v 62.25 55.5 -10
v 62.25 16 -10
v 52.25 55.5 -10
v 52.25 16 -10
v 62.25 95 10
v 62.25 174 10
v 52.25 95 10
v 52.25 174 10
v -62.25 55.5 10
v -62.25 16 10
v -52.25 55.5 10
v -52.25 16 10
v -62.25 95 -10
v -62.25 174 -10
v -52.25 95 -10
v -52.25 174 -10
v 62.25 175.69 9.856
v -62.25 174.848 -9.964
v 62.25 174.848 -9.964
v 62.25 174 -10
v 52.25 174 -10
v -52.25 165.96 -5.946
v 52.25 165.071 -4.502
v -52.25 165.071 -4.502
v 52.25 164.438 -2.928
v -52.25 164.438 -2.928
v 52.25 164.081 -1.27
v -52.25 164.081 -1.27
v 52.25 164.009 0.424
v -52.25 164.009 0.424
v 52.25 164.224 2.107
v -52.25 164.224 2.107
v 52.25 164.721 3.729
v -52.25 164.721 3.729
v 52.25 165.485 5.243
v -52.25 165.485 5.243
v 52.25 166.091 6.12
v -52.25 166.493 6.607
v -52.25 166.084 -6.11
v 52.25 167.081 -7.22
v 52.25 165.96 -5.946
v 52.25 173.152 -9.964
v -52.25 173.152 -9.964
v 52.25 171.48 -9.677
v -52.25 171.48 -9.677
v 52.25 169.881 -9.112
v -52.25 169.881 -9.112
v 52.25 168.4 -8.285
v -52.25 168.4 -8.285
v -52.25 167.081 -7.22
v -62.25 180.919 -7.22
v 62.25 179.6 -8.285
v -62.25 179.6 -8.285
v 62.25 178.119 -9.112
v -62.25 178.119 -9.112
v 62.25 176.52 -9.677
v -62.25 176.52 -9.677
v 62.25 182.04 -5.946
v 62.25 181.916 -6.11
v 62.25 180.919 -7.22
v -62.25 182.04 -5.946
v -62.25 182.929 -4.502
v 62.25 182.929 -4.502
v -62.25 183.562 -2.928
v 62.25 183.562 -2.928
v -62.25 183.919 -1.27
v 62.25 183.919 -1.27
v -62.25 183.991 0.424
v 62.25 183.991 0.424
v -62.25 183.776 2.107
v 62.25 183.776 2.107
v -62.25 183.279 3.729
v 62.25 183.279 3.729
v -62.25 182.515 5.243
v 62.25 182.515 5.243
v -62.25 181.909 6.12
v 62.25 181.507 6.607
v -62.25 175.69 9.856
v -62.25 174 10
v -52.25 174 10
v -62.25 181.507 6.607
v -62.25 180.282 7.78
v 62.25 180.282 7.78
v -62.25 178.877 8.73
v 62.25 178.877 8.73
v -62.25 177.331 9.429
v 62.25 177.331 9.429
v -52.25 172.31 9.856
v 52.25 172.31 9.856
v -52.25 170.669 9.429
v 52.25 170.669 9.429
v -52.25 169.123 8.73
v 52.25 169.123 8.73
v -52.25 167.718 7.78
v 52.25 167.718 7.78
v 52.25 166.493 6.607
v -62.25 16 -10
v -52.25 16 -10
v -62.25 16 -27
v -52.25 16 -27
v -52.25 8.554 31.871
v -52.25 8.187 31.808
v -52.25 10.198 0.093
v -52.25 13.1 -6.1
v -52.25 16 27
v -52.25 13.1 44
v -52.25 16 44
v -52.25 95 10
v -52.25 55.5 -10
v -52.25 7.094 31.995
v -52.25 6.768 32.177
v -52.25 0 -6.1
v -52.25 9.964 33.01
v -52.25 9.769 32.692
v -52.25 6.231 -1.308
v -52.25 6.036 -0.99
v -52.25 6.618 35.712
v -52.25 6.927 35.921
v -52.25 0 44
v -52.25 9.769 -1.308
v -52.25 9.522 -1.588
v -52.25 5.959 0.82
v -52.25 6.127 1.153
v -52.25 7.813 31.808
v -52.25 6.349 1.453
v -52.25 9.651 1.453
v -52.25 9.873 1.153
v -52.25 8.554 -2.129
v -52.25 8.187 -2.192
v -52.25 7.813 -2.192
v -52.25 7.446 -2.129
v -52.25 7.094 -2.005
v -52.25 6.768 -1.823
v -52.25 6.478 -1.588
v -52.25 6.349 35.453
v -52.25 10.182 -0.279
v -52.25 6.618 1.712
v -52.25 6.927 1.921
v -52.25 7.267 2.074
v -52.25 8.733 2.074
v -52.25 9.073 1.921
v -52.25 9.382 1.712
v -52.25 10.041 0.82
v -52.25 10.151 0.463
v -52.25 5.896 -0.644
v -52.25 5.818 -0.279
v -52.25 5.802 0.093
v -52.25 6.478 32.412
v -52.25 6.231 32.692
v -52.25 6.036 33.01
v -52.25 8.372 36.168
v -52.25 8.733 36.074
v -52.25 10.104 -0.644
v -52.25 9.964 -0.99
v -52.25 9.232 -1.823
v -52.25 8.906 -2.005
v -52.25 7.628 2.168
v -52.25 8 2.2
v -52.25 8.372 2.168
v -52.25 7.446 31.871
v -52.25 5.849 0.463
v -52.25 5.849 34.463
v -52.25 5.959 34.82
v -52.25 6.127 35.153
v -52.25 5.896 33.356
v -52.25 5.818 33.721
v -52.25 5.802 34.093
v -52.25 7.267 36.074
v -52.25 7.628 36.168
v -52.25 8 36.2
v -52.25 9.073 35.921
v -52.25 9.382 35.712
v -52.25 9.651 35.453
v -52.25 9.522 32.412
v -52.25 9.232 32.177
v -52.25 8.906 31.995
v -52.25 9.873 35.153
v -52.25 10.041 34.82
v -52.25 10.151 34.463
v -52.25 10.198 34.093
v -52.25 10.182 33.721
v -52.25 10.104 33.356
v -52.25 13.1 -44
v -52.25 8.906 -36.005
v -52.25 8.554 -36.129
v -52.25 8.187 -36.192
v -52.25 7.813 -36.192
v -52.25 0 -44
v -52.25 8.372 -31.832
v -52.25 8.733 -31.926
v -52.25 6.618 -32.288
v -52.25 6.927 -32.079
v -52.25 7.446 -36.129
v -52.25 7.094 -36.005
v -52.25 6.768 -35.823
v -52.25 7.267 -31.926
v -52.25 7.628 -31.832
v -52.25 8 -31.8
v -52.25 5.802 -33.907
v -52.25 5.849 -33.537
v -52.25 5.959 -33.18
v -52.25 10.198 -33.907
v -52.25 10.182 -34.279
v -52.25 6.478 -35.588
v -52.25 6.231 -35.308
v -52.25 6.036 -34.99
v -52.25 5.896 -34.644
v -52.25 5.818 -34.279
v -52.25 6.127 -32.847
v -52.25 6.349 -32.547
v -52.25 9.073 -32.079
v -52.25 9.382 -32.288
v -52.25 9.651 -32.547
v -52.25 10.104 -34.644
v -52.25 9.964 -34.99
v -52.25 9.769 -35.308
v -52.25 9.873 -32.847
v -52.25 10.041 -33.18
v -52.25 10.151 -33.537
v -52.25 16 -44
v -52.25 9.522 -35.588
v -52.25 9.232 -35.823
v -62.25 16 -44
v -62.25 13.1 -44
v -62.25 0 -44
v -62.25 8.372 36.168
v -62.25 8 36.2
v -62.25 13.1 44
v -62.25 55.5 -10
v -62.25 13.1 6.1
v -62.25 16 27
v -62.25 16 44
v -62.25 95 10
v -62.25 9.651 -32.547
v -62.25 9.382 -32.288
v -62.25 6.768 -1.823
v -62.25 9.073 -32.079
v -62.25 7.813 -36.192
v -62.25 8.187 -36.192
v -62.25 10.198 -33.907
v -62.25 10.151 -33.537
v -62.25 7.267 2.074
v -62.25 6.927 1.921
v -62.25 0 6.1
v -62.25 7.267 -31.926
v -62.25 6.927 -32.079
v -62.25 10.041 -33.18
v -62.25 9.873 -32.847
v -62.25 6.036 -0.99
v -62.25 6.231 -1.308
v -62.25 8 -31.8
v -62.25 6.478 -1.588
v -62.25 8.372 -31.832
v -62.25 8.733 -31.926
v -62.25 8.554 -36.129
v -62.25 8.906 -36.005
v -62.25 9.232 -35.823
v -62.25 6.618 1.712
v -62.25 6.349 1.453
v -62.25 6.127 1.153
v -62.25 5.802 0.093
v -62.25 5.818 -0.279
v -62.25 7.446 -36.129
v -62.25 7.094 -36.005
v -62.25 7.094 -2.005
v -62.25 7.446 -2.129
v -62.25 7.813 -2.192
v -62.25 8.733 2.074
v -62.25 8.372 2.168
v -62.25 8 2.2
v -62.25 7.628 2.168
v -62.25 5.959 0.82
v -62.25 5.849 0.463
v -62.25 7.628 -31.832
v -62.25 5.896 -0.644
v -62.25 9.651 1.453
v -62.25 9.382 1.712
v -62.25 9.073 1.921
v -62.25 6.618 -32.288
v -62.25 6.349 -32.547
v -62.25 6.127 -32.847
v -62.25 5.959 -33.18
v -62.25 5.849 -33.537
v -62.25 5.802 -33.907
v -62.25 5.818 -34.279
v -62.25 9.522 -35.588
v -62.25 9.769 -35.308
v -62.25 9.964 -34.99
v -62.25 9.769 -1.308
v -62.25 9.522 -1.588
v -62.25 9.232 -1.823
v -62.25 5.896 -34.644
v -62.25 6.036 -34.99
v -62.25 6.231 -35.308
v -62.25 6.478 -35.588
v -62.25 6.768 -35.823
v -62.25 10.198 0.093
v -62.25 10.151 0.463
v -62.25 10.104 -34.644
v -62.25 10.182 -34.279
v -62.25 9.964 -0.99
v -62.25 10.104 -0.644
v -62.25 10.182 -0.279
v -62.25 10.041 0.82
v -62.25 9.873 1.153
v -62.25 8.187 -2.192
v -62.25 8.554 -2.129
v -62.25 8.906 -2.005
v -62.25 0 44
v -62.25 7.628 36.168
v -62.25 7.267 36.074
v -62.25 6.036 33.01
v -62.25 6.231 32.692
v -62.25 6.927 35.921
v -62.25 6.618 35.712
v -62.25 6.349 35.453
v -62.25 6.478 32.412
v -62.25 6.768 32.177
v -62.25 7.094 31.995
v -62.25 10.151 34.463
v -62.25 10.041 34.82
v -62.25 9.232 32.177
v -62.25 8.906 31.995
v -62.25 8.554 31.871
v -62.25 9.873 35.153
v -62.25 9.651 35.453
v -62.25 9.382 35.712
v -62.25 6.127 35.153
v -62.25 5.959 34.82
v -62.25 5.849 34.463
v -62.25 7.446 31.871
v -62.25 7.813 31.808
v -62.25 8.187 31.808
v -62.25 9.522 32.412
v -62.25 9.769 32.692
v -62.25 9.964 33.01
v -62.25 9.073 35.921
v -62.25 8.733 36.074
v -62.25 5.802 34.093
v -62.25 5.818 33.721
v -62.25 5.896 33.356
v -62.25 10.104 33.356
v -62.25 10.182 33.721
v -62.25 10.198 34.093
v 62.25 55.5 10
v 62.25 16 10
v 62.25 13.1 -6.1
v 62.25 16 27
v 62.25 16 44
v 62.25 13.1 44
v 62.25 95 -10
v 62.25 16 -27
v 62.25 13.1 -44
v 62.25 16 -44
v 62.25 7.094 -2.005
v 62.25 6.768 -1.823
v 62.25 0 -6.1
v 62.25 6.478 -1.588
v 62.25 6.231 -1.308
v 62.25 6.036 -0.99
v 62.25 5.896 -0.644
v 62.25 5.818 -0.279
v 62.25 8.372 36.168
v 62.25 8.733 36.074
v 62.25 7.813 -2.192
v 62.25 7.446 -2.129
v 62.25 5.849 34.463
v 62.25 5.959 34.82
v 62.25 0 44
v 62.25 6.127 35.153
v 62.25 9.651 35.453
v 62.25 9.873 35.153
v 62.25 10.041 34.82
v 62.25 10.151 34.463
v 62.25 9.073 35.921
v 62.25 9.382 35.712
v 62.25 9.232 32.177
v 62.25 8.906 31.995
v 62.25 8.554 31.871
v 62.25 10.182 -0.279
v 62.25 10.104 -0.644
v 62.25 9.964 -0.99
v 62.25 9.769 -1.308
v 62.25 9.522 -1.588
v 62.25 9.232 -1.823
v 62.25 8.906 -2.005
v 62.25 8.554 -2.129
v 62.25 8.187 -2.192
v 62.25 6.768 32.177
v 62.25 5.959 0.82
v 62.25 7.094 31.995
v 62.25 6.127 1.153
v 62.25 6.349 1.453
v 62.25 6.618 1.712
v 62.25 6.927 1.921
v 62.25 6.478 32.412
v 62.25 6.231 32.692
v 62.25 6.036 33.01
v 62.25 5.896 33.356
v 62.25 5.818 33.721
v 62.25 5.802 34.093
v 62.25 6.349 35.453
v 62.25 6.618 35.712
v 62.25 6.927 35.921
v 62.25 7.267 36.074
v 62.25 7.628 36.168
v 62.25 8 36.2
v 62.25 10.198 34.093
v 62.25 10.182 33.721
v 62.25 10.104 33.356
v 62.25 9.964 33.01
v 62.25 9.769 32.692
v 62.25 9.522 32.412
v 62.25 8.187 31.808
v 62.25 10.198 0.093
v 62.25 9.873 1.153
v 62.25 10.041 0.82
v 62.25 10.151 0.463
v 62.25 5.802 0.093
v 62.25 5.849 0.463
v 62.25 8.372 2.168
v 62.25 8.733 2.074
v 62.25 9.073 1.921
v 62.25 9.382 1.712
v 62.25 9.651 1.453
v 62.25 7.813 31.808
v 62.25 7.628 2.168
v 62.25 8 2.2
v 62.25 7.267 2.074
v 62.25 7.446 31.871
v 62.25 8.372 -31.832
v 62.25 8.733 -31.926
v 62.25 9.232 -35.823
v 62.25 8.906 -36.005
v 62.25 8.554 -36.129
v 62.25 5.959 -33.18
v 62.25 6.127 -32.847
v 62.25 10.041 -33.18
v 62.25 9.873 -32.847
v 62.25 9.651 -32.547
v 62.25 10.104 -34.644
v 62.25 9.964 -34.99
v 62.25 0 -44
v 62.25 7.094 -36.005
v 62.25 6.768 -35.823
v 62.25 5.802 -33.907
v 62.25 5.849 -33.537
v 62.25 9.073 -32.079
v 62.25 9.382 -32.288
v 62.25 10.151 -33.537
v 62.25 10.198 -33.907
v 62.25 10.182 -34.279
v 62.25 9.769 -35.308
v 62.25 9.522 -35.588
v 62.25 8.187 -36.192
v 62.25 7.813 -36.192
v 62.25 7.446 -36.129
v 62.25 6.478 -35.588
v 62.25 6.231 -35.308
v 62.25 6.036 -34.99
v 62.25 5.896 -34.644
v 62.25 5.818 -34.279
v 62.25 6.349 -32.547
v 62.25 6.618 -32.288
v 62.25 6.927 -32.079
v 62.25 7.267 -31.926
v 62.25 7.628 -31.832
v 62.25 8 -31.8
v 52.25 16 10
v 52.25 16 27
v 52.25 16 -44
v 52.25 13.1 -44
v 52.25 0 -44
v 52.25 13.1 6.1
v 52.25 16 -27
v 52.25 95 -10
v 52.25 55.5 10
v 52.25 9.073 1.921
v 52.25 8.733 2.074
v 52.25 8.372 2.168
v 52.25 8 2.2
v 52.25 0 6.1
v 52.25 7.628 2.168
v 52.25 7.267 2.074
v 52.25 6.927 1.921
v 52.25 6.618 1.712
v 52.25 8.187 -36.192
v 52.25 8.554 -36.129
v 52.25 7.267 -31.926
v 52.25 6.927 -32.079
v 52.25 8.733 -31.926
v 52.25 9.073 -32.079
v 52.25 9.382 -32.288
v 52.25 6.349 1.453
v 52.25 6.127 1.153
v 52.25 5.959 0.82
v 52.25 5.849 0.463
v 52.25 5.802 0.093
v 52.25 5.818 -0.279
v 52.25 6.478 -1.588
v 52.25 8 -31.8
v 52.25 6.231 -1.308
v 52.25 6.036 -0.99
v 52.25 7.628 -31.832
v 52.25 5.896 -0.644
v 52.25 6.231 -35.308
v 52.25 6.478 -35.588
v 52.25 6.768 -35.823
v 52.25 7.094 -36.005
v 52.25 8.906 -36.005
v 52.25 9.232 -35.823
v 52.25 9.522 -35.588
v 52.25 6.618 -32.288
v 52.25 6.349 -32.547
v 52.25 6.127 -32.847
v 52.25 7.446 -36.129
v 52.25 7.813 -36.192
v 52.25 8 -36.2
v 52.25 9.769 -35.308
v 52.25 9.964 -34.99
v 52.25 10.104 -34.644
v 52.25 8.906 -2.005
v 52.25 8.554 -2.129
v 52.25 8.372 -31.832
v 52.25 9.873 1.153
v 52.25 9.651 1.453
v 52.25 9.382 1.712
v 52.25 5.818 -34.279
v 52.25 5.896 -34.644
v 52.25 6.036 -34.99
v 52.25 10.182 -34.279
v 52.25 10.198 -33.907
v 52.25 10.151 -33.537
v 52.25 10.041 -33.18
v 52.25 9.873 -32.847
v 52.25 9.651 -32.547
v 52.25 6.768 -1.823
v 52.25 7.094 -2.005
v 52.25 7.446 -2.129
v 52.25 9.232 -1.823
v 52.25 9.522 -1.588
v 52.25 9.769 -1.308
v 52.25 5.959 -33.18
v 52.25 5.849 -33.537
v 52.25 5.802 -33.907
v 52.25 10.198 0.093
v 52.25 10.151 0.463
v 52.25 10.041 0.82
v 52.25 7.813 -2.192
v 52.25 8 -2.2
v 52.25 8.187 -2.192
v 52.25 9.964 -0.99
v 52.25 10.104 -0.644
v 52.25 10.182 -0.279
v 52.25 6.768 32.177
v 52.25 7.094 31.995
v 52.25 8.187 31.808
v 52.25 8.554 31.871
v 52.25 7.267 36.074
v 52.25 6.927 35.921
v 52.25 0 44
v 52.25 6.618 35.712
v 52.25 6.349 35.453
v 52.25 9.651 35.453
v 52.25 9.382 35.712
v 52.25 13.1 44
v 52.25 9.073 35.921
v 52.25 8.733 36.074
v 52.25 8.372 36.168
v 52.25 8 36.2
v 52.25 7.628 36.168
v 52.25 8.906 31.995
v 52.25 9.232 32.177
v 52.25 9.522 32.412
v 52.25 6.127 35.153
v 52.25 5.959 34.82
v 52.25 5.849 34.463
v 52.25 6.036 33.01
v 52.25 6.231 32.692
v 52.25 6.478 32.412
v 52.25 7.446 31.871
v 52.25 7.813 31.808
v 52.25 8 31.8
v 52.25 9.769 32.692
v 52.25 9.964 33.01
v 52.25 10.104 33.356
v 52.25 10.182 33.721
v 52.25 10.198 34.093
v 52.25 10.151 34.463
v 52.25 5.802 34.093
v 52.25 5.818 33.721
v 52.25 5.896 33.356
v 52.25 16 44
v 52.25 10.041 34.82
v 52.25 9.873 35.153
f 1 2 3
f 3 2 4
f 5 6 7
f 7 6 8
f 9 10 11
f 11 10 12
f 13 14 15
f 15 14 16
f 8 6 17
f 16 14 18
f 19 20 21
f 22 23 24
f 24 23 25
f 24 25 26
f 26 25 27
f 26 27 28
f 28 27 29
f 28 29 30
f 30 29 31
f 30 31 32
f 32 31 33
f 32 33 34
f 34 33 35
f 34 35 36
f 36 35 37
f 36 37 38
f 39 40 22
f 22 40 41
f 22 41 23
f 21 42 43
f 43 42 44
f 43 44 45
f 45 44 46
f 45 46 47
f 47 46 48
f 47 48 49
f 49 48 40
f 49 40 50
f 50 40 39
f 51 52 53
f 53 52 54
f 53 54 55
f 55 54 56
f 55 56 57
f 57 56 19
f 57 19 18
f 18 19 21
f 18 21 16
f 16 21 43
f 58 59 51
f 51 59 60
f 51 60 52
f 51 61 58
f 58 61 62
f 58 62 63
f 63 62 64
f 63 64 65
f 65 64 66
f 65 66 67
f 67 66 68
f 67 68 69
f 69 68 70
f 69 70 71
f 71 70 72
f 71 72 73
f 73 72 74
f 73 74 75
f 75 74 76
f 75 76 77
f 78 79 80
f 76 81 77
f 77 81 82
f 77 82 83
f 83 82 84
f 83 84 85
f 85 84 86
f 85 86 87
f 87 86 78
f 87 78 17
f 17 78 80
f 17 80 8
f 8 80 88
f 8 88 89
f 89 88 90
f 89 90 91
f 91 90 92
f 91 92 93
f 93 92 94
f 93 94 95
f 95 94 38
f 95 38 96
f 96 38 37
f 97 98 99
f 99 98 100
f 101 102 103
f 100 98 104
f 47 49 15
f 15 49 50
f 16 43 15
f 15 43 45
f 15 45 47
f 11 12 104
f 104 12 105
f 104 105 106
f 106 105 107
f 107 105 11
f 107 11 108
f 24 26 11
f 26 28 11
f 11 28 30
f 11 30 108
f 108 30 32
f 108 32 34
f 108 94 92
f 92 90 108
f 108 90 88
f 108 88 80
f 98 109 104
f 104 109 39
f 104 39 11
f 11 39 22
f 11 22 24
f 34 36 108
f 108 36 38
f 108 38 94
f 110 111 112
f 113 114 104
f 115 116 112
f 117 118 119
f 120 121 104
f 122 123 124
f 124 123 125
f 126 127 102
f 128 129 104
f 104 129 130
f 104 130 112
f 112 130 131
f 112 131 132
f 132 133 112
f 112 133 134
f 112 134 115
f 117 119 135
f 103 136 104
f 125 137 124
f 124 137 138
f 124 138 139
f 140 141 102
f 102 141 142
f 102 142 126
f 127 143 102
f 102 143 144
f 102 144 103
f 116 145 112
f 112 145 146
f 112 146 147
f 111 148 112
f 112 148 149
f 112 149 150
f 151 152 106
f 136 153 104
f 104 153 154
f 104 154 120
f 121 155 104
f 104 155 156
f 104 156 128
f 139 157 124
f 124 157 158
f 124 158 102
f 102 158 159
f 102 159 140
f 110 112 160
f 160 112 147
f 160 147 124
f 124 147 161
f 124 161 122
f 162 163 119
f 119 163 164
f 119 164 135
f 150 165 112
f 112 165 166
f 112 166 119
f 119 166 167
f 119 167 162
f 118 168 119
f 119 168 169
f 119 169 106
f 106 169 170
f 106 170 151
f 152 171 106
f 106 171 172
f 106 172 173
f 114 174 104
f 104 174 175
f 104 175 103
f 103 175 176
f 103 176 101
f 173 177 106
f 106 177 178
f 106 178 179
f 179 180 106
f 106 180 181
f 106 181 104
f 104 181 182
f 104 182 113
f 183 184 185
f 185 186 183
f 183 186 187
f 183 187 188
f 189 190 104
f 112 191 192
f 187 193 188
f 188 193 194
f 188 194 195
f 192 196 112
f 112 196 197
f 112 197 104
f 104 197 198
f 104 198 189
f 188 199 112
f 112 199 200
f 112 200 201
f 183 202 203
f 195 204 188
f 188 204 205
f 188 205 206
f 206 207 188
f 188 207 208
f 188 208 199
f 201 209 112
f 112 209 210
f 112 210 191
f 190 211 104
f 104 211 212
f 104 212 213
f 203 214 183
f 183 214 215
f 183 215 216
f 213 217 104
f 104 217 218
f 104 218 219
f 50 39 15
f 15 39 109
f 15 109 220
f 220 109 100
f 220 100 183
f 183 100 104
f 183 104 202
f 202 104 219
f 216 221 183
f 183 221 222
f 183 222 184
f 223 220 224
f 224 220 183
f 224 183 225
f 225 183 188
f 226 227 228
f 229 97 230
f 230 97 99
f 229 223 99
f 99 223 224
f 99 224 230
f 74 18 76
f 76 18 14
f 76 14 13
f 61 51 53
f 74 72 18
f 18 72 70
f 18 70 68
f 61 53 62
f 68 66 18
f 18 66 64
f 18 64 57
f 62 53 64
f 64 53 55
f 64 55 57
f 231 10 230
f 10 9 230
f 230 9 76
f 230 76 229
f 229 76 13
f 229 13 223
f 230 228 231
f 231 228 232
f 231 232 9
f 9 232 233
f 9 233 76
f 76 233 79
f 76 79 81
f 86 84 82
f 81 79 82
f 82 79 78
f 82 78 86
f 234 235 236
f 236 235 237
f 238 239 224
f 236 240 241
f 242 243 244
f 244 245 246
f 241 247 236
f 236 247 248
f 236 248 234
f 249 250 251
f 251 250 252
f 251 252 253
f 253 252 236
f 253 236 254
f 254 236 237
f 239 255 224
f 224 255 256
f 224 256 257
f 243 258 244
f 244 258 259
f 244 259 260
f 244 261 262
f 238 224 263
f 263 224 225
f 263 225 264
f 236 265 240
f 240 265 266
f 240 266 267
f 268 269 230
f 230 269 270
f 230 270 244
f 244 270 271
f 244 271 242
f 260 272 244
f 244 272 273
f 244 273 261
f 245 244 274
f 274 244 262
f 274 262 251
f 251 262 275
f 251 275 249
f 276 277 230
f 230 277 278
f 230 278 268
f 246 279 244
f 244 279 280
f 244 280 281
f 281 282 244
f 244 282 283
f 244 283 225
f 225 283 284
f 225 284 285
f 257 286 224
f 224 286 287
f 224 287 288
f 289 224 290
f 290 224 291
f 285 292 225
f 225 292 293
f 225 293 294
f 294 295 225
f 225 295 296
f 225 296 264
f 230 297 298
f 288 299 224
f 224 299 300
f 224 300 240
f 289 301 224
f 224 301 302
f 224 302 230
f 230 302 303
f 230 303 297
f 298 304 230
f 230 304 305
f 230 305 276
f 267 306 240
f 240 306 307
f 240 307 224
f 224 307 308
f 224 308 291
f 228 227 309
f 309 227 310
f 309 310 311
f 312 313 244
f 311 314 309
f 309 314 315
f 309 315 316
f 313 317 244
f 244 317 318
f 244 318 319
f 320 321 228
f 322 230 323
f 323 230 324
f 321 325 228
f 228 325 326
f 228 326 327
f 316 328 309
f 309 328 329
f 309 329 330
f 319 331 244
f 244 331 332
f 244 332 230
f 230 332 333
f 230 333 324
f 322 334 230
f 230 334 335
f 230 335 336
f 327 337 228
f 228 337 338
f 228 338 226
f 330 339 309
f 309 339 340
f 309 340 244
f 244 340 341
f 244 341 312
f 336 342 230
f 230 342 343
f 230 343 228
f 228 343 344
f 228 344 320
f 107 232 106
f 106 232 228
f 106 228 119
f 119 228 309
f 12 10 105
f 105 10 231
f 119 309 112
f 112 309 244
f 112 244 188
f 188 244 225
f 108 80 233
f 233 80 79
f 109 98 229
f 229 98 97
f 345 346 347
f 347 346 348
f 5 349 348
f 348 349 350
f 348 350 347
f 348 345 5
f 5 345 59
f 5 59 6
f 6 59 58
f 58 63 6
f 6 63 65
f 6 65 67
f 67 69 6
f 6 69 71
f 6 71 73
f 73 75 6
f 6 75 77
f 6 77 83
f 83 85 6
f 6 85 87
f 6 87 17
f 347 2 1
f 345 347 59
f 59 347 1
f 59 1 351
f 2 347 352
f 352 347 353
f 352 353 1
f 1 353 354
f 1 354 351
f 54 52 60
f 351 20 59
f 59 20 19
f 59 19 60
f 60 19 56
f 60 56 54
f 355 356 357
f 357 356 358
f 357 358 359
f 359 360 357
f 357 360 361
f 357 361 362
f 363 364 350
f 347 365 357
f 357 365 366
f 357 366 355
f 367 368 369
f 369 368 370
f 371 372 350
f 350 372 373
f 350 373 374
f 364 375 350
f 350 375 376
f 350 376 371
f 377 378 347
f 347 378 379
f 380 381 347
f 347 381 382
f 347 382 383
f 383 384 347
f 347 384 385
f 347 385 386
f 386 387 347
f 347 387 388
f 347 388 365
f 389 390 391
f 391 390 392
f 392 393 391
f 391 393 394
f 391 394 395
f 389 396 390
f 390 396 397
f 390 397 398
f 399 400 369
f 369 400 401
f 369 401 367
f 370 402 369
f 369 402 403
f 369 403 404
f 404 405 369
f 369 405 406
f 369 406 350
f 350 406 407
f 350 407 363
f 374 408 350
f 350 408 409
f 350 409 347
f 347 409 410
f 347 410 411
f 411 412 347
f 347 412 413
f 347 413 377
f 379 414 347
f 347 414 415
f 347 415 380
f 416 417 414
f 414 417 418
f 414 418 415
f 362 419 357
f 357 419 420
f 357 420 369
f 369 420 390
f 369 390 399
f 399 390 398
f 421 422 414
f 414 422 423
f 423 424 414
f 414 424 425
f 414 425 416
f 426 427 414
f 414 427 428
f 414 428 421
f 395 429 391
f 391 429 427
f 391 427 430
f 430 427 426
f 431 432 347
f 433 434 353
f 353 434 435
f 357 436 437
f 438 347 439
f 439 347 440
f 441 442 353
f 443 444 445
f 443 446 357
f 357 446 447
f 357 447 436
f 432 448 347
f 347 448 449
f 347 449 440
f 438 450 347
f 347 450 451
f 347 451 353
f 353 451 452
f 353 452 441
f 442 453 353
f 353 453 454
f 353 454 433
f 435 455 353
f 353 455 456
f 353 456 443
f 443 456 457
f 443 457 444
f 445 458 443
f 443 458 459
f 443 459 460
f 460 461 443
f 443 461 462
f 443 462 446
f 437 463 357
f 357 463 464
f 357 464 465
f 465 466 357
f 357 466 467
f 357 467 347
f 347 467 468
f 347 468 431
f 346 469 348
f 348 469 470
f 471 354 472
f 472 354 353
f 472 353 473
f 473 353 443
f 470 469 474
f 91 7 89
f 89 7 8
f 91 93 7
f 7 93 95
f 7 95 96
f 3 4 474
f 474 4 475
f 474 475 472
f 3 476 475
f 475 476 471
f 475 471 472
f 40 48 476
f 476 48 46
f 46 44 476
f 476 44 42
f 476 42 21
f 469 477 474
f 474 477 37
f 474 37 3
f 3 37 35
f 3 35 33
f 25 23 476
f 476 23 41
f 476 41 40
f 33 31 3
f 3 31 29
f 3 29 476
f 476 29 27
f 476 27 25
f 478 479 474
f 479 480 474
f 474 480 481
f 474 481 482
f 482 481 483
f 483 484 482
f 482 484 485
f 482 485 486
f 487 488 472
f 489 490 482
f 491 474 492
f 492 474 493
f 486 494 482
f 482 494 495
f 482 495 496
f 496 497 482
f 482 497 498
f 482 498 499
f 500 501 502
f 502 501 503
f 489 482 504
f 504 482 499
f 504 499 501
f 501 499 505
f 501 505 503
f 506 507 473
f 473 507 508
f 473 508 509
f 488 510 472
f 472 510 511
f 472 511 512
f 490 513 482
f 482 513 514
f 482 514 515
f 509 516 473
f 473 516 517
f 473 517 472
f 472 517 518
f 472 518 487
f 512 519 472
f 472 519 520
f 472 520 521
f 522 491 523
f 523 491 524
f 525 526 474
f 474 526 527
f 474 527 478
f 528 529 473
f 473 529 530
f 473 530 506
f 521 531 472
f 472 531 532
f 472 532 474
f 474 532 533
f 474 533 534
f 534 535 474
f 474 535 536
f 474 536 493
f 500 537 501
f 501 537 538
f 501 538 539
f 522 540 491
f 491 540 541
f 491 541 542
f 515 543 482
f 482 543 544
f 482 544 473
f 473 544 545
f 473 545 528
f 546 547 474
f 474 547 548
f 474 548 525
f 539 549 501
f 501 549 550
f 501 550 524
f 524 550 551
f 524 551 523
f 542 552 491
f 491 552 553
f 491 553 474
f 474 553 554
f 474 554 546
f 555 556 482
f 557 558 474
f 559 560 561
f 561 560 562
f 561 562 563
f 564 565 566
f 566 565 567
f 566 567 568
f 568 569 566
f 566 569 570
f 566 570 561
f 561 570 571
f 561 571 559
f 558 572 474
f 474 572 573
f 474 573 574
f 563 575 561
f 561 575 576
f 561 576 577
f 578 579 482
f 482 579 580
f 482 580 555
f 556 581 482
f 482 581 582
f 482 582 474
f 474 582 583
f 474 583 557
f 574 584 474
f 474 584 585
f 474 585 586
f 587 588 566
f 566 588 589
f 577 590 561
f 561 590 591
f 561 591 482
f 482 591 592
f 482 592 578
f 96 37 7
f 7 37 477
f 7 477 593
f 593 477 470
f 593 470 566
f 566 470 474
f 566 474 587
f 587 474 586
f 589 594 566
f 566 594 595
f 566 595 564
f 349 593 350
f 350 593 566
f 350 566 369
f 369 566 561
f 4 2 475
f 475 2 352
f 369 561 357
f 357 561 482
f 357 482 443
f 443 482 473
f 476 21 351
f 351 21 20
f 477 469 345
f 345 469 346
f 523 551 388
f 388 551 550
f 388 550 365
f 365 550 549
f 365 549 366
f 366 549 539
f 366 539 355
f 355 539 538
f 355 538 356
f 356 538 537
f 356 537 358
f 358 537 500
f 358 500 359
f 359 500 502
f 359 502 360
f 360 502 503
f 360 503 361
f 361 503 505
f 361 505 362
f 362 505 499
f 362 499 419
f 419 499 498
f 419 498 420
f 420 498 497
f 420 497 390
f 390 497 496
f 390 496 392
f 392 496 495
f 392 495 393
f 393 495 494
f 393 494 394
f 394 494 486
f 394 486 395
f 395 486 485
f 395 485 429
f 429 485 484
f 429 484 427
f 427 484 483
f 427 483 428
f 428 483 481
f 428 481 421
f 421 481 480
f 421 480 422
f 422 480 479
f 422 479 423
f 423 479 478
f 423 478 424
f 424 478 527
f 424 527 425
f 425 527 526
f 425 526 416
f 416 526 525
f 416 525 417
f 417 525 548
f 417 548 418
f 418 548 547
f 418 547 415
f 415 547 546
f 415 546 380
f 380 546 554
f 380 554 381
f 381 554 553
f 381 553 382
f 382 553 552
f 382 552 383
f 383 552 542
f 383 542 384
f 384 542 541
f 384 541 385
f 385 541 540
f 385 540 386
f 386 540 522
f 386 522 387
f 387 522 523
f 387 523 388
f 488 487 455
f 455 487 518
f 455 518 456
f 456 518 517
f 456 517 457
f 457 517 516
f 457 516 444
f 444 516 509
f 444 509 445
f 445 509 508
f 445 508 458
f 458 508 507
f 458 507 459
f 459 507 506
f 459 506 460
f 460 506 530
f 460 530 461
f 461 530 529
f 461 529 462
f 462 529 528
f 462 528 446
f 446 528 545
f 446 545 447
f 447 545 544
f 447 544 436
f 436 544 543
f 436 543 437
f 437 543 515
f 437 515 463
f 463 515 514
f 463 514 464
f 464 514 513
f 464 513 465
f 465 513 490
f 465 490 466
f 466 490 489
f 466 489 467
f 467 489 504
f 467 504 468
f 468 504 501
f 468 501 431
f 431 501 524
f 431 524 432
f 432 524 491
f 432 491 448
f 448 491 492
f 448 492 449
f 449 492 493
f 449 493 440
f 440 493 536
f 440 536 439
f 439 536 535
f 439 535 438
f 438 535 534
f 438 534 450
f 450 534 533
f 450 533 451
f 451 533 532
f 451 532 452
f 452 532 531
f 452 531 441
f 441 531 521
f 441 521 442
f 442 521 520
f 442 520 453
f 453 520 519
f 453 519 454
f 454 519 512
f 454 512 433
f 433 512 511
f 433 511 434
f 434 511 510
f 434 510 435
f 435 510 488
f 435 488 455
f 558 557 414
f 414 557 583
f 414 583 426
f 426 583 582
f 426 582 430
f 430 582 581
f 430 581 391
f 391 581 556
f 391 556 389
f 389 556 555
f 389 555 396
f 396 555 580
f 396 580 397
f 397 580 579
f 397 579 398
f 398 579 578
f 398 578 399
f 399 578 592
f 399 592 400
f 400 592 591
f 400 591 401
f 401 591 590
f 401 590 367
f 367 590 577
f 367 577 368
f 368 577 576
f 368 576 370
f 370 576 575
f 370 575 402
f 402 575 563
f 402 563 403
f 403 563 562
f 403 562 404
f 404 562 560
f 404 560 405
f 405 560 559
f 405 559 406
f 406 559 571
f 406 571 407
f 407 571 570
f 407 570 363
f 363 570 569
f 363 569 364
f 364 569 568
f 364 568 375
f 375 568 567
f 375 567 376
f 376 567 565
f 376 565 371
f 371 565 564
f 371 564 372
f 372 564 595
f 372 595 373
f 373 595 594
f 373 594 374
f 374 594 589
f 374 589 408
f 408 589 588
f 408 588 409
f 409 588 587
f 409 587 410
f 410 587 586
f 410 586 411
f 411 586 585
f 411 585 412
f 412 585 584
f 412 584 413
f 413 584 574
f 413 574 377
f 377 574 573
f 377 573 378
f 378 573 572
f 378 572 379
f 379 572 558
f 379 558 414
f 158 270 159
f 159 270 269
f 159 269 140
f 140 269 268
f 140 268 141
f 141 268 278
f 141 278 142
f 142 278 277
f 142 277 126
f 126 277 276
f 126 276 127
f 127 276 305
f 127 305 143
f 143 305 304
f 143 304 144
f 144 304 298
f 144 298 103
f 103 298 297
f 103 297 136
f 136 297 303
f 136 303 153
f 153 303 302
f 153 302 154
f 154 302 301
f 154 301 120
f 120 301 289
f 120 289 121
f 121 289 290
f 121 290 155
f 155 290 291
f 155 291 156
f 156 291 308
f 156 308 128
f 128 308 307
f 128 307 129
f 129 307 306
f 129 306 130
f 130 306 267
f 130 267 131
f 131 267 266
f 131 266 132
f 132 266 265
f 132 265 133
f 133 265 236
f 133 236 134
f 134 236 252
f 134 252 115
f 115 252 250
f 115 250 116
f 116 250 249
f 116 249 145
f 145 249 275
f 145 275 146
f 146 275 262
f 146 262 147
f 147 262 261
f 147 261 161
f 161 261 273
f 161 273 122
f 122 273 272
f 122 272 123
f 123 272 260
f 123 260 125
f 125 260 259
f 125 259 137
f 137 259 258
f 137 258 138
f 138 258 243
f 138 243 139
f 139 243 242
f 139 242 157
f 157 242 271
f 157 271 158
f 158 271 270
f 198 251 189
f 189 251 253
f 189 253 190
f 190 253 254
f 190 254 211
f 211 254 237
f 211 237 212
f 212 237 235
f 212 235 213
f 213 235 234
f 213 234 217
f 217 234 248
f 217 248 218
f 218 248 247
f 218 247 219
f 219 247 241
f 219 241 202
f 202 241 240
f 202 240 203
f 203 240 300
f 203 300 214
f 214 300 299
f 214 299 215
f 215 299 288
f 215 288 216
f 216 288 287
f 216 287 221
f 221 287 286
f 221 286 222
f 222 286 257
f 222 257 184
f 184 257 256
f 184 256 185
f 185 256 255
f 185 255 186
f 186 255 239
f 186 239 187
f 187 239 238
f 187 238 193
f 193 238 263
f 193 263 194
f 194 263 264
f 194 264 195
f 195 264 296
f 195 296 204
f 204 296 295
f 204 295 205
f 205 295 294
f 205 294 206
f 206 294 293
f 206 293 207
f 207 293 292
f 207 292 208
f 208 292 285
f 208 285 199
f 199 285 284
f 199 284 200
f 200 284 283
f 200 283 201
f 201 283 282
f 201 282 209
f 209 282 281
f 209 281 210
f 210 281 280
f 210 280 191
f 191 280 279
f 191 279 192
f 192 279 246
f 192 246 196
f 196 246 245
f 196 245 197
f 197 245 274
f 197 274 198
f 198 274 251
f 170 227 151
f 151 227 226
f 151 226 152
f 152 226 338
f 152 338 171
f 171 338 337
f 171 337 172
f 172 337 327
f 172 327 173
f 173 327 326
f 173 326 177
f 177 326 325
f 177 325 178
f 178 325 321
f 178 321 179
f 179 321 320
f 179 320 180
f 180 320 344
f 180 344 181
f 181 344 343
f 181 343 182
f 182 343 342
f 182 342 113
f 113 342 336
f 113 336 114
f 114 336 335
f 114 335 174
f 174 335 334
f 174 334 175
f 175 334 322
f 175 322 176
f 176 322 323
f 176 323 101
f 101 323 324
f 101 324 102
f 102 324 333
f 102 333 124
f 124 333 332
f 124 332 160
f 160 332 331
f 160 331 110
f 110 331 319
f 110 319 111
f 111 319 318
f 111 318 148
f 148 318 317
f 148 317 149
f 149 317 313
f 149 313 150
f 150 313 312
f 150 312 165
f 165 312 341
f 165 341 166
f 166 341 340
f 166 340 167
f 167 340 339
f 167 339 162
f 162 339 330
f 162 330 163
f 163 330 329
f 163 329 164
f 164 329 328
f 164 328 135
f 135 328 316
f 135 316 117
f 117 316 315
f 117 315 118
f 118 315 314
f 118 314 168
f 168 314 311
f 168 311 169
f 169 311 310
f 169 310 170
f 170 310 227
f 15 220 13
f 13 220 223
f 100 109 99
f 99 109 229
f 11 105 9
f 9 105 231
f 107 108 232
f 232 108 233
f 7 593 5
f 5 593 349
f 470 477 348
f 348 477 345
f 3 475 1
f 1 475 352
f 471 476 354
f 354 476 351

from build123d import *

# Parameters (mm, degrees)
SKETCH_2_W          = 10
SKETCH_2_H          = 88
EXTRUDE_1_DEPTH     = 16
EXTRUDE_1_2_DEPTH   = 16
SKETCH_3_W          = 10
SKETCH_3_H          = 20
EXTRUDE_2_DEPTH     = 158
SKETCH_4_R          = 10
EXTRUDE_3_DEPTH     = 124.5
SKETCH_5_R          = 2.2
CUT_EXTRUDE_1_DEPTH = 126
EXTRUDE_4_DEPTH     = 10
EXTRUDE_5_DEPTH     = 10


with BuildPart() as part:
    # 草图2 → 凸台-拉伸1 (new body)
    with BuildSketch(Plane(origin=(0, 0, 0), x_dir=(1, 0, 0), z_dir=(0, 1, 0))):
        with Locations((-57.25, 0)):
            Rectangle(SKETCH_2_W, SKETCH_2_H)
    extrude(amount=EXTRUDE_1_DEPTH)



with BuildPart() as body_2:
    # 草图2 → Extrude 1 2 (new body)
    with BuildSketch(Plane(origin=(0, 0, 0), x_dir=(1, 0, 0), z_dir=(0, 1, 0))):
        with Locations((57.25, 0)):
            Rectangle(SKETCH_2_W, SKETCH_2_H)
    extrude(amount=EXTRUDE_1_2_DEPTH)


with BuildPart() as part_1:
    add(part.part)

    add(body_2.part)  # 凸台-拉伸2 merges body 2
    # 草图3 → 凸台-拉伸2 (add)
    with BuildSketch(Plane(origin=(0, 16, 0), x_dir=(1, 0, 0), z_dir=(0, 1, 0))):
        with Locations((-57.25, 0)):
            Rectangle(SKETCH_3_W, SKETCH_3_H)
        with Locations((57.25, 0)):
            Rectangle(SKETCH_3_W, SKETCH_3_H)
    extrude(amount=EXTRUDE_2_DEPTH)

    # 草图4 → 凸台-拉伸3 (add)
    with BuildSketch(Plane.ZY.offset(62.25)):
        with Locations((0, 174)):
            Circle(SKETCH_4_R)
    extrude(amount=-EXTRUDE_3_DEPTH)

    # 草图5 → 切除-拉伸1 (cut)
    with BuildSketch(Plane.ZY.offset(62.25)):
        with Locations((0, 8)):
            Circle(SKETCH_5_R)
        with Locations((-34, 8)):
            Circle(SKETCH_5_R)
        with Locations((34, 8)):
            Circle(SKETCH_5_R)
    extrude(amount=-CUT_EXTRUDE_1_DEPTH, mode=Mode.SUBTRACT)

    # 草图6 → 凸台-拉伸4 (add)
    with BuildSketch(Plane.ZY.offset(62.25)):
        Polygon((-44, 16), (-10, 95), (-10, 55.5), (-27, 16), align=None)
        Polygon((44, 16), (10, 95), (10, 55.5), (27, 16), align=None)
    extrude(amount=-EXTRUDE_4_DEPTH)

    # 草图7 → 凸台-拉伸5 (add)
    with BuildSketch(Plane(origin=(62.25, 0, 0), x_dir=(0, 0, -1), z_dir=(1, 0, 0))):
        Polygon((-44, 16), (-10, 95), (-10, 55.5), (-27, 16), align=None)
        Polygon((44, 16), (10, 95), (10, 55.5), (27, 16), align=None)
    extrude(amount=-EXTRUDE_5_DEPTH)


solid = part_1.part
